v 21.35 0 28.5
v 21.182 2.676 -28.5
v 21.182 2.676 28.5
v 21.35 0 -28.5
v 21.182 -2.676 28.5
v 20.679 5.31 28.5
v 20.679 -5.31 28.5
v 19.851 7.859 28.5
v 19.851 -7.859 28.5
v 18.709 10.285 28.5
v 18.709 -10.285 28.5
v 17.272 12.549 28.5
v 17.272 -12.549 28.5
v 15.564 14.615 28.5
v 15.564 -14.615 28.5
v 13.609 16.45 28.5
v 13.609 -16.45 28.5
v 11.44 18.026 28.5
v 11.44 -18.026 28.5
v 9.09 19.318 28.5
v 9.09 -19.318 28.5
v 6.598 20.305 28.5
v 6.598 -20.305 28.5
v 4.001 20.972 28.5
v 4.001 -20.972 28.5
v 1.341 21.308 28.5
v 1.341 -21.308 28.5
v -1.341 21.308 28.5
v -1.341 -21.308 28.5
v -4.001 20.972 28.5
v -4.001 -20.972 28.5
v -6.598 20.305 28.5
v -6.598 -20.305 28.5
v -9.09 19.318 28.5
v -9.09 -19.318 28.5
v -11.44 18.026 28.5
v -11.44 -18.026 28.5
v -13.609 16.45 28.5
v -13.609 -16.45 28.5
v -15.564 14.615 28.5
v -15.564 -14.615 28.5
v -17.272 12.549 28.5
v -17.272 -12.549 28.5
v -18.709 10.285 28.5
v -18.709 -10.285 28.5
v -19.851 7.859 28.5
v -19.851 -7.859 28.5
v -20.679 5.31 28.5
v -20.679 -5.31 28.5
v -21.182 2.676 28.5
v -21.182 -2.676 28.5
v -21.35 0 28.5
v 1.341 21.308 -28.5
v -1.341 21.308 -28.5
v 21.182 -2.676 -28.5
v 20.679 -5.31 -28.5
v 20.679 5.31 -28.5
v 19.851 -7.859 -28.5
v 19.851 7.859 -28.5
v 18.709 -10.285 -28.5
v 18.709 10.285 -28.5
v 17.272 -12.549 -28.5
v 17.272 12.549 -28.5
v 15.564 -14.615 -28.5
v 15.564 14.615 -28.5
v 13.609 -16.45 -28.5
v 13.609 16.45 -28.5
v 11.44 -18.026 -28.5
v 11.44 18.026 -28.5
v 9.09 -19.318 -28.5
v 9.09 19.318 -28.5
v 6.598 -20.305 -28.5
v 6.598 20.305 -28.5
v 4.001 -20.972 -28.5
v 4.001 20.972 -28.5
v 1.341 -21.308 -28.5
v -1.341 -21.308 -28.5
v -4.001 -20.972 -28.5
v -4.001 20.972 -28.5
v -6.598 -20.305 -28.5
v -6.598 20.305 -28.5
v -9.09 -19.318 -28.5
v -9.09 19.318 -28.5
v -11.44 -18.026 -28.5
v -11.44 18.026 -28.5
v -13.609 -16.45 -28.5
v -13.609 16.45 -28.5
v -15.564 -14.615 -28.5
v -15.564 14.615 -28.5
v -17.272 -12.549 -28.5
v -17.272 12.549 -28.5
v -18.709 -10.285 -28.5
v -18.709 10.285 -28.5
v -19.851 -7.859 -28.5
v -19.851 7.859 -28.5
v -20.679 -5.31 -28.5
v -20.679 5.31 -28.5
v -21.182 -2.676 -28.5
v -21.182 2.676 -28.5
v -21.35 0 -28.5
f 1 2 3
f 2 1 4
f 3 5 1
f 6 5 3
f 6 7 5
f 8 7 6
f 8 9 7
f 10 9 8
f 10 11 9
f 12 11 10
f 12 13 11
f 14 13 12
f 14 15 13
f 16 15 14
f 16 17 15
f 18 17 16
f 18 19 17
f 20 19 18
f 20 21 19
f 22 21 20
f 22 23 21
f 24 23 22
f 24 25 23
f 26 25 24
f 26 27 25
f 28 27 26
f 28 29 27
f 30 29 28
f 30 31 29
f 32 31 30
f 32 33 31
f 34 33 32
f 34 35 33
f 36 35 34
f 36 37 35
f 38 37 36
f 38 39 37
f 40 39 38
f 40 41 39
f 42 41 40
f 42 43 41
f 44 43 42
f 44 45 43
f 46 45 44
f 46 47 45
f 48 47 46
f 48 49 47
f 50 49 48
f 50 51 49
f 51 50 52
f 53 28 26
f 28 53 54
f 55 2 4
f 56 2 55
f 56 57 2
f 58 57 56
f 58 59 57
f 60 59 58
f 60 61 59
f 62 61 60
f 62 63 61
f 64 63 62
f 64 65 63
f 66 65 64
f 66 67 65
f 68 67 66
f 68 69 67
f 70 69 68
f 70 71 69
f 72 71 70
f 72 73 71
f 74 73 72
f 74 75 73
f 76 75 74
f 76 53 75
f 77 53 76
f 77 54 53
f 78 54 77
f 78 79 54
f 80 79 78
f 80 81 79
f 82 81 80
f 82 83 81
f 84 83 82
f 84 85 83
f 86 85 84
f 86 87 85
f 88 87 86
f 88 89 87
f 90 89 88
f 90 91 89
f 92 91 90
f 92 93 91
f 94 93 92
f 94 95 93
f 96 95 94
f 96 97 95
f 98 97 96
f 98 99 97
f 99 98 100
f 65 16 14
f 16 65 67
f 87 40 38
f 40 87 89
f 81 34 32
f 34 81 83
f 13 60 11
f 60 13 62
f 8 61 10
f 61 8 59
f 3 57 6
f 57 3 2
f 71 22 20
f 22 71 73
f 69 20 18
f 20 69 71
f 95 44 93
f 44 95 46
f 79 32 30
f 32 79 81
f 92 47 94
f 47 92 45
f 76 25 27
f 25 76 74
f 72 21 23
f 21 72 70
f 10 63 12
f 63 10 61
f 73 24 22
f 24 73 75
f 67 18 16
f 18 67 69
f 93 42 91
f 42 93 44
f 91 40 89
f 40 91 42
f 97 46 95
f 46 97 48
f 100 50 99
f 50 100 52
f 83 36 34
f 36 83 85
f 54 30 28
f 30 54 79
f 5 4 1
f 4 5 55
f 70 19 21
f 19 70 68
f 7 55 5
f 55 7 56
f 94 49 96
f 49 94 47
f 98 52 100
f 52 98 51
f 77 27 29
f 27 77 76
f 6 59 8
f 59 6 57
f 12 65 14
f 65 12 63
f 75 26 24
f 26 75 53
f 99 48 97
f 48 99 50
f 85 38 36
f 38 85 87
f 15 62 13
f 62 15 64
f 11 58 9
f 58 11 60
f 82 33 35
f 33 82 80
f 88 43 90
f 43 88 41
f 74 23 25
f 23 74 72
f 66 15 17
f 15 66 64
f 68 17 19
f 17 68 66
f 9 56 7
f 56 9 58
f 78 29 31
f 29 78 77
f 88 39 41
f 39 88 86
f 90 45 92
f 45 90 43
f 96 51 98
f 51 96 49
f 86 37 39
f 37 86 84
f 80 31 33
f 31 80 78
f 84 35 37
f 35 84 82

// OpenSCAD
$fn = 50;


difference() {
	union() {
		translate(v = [0, 0, -28.5000000000]) {
			cylinder(h = 57, r = 21.3500000000);
		}
	}
	union() {
		translate(v = [0, 0, -100.0000000000]) {
			cylinder(h = 200, r = 0);
		}
	}
}
